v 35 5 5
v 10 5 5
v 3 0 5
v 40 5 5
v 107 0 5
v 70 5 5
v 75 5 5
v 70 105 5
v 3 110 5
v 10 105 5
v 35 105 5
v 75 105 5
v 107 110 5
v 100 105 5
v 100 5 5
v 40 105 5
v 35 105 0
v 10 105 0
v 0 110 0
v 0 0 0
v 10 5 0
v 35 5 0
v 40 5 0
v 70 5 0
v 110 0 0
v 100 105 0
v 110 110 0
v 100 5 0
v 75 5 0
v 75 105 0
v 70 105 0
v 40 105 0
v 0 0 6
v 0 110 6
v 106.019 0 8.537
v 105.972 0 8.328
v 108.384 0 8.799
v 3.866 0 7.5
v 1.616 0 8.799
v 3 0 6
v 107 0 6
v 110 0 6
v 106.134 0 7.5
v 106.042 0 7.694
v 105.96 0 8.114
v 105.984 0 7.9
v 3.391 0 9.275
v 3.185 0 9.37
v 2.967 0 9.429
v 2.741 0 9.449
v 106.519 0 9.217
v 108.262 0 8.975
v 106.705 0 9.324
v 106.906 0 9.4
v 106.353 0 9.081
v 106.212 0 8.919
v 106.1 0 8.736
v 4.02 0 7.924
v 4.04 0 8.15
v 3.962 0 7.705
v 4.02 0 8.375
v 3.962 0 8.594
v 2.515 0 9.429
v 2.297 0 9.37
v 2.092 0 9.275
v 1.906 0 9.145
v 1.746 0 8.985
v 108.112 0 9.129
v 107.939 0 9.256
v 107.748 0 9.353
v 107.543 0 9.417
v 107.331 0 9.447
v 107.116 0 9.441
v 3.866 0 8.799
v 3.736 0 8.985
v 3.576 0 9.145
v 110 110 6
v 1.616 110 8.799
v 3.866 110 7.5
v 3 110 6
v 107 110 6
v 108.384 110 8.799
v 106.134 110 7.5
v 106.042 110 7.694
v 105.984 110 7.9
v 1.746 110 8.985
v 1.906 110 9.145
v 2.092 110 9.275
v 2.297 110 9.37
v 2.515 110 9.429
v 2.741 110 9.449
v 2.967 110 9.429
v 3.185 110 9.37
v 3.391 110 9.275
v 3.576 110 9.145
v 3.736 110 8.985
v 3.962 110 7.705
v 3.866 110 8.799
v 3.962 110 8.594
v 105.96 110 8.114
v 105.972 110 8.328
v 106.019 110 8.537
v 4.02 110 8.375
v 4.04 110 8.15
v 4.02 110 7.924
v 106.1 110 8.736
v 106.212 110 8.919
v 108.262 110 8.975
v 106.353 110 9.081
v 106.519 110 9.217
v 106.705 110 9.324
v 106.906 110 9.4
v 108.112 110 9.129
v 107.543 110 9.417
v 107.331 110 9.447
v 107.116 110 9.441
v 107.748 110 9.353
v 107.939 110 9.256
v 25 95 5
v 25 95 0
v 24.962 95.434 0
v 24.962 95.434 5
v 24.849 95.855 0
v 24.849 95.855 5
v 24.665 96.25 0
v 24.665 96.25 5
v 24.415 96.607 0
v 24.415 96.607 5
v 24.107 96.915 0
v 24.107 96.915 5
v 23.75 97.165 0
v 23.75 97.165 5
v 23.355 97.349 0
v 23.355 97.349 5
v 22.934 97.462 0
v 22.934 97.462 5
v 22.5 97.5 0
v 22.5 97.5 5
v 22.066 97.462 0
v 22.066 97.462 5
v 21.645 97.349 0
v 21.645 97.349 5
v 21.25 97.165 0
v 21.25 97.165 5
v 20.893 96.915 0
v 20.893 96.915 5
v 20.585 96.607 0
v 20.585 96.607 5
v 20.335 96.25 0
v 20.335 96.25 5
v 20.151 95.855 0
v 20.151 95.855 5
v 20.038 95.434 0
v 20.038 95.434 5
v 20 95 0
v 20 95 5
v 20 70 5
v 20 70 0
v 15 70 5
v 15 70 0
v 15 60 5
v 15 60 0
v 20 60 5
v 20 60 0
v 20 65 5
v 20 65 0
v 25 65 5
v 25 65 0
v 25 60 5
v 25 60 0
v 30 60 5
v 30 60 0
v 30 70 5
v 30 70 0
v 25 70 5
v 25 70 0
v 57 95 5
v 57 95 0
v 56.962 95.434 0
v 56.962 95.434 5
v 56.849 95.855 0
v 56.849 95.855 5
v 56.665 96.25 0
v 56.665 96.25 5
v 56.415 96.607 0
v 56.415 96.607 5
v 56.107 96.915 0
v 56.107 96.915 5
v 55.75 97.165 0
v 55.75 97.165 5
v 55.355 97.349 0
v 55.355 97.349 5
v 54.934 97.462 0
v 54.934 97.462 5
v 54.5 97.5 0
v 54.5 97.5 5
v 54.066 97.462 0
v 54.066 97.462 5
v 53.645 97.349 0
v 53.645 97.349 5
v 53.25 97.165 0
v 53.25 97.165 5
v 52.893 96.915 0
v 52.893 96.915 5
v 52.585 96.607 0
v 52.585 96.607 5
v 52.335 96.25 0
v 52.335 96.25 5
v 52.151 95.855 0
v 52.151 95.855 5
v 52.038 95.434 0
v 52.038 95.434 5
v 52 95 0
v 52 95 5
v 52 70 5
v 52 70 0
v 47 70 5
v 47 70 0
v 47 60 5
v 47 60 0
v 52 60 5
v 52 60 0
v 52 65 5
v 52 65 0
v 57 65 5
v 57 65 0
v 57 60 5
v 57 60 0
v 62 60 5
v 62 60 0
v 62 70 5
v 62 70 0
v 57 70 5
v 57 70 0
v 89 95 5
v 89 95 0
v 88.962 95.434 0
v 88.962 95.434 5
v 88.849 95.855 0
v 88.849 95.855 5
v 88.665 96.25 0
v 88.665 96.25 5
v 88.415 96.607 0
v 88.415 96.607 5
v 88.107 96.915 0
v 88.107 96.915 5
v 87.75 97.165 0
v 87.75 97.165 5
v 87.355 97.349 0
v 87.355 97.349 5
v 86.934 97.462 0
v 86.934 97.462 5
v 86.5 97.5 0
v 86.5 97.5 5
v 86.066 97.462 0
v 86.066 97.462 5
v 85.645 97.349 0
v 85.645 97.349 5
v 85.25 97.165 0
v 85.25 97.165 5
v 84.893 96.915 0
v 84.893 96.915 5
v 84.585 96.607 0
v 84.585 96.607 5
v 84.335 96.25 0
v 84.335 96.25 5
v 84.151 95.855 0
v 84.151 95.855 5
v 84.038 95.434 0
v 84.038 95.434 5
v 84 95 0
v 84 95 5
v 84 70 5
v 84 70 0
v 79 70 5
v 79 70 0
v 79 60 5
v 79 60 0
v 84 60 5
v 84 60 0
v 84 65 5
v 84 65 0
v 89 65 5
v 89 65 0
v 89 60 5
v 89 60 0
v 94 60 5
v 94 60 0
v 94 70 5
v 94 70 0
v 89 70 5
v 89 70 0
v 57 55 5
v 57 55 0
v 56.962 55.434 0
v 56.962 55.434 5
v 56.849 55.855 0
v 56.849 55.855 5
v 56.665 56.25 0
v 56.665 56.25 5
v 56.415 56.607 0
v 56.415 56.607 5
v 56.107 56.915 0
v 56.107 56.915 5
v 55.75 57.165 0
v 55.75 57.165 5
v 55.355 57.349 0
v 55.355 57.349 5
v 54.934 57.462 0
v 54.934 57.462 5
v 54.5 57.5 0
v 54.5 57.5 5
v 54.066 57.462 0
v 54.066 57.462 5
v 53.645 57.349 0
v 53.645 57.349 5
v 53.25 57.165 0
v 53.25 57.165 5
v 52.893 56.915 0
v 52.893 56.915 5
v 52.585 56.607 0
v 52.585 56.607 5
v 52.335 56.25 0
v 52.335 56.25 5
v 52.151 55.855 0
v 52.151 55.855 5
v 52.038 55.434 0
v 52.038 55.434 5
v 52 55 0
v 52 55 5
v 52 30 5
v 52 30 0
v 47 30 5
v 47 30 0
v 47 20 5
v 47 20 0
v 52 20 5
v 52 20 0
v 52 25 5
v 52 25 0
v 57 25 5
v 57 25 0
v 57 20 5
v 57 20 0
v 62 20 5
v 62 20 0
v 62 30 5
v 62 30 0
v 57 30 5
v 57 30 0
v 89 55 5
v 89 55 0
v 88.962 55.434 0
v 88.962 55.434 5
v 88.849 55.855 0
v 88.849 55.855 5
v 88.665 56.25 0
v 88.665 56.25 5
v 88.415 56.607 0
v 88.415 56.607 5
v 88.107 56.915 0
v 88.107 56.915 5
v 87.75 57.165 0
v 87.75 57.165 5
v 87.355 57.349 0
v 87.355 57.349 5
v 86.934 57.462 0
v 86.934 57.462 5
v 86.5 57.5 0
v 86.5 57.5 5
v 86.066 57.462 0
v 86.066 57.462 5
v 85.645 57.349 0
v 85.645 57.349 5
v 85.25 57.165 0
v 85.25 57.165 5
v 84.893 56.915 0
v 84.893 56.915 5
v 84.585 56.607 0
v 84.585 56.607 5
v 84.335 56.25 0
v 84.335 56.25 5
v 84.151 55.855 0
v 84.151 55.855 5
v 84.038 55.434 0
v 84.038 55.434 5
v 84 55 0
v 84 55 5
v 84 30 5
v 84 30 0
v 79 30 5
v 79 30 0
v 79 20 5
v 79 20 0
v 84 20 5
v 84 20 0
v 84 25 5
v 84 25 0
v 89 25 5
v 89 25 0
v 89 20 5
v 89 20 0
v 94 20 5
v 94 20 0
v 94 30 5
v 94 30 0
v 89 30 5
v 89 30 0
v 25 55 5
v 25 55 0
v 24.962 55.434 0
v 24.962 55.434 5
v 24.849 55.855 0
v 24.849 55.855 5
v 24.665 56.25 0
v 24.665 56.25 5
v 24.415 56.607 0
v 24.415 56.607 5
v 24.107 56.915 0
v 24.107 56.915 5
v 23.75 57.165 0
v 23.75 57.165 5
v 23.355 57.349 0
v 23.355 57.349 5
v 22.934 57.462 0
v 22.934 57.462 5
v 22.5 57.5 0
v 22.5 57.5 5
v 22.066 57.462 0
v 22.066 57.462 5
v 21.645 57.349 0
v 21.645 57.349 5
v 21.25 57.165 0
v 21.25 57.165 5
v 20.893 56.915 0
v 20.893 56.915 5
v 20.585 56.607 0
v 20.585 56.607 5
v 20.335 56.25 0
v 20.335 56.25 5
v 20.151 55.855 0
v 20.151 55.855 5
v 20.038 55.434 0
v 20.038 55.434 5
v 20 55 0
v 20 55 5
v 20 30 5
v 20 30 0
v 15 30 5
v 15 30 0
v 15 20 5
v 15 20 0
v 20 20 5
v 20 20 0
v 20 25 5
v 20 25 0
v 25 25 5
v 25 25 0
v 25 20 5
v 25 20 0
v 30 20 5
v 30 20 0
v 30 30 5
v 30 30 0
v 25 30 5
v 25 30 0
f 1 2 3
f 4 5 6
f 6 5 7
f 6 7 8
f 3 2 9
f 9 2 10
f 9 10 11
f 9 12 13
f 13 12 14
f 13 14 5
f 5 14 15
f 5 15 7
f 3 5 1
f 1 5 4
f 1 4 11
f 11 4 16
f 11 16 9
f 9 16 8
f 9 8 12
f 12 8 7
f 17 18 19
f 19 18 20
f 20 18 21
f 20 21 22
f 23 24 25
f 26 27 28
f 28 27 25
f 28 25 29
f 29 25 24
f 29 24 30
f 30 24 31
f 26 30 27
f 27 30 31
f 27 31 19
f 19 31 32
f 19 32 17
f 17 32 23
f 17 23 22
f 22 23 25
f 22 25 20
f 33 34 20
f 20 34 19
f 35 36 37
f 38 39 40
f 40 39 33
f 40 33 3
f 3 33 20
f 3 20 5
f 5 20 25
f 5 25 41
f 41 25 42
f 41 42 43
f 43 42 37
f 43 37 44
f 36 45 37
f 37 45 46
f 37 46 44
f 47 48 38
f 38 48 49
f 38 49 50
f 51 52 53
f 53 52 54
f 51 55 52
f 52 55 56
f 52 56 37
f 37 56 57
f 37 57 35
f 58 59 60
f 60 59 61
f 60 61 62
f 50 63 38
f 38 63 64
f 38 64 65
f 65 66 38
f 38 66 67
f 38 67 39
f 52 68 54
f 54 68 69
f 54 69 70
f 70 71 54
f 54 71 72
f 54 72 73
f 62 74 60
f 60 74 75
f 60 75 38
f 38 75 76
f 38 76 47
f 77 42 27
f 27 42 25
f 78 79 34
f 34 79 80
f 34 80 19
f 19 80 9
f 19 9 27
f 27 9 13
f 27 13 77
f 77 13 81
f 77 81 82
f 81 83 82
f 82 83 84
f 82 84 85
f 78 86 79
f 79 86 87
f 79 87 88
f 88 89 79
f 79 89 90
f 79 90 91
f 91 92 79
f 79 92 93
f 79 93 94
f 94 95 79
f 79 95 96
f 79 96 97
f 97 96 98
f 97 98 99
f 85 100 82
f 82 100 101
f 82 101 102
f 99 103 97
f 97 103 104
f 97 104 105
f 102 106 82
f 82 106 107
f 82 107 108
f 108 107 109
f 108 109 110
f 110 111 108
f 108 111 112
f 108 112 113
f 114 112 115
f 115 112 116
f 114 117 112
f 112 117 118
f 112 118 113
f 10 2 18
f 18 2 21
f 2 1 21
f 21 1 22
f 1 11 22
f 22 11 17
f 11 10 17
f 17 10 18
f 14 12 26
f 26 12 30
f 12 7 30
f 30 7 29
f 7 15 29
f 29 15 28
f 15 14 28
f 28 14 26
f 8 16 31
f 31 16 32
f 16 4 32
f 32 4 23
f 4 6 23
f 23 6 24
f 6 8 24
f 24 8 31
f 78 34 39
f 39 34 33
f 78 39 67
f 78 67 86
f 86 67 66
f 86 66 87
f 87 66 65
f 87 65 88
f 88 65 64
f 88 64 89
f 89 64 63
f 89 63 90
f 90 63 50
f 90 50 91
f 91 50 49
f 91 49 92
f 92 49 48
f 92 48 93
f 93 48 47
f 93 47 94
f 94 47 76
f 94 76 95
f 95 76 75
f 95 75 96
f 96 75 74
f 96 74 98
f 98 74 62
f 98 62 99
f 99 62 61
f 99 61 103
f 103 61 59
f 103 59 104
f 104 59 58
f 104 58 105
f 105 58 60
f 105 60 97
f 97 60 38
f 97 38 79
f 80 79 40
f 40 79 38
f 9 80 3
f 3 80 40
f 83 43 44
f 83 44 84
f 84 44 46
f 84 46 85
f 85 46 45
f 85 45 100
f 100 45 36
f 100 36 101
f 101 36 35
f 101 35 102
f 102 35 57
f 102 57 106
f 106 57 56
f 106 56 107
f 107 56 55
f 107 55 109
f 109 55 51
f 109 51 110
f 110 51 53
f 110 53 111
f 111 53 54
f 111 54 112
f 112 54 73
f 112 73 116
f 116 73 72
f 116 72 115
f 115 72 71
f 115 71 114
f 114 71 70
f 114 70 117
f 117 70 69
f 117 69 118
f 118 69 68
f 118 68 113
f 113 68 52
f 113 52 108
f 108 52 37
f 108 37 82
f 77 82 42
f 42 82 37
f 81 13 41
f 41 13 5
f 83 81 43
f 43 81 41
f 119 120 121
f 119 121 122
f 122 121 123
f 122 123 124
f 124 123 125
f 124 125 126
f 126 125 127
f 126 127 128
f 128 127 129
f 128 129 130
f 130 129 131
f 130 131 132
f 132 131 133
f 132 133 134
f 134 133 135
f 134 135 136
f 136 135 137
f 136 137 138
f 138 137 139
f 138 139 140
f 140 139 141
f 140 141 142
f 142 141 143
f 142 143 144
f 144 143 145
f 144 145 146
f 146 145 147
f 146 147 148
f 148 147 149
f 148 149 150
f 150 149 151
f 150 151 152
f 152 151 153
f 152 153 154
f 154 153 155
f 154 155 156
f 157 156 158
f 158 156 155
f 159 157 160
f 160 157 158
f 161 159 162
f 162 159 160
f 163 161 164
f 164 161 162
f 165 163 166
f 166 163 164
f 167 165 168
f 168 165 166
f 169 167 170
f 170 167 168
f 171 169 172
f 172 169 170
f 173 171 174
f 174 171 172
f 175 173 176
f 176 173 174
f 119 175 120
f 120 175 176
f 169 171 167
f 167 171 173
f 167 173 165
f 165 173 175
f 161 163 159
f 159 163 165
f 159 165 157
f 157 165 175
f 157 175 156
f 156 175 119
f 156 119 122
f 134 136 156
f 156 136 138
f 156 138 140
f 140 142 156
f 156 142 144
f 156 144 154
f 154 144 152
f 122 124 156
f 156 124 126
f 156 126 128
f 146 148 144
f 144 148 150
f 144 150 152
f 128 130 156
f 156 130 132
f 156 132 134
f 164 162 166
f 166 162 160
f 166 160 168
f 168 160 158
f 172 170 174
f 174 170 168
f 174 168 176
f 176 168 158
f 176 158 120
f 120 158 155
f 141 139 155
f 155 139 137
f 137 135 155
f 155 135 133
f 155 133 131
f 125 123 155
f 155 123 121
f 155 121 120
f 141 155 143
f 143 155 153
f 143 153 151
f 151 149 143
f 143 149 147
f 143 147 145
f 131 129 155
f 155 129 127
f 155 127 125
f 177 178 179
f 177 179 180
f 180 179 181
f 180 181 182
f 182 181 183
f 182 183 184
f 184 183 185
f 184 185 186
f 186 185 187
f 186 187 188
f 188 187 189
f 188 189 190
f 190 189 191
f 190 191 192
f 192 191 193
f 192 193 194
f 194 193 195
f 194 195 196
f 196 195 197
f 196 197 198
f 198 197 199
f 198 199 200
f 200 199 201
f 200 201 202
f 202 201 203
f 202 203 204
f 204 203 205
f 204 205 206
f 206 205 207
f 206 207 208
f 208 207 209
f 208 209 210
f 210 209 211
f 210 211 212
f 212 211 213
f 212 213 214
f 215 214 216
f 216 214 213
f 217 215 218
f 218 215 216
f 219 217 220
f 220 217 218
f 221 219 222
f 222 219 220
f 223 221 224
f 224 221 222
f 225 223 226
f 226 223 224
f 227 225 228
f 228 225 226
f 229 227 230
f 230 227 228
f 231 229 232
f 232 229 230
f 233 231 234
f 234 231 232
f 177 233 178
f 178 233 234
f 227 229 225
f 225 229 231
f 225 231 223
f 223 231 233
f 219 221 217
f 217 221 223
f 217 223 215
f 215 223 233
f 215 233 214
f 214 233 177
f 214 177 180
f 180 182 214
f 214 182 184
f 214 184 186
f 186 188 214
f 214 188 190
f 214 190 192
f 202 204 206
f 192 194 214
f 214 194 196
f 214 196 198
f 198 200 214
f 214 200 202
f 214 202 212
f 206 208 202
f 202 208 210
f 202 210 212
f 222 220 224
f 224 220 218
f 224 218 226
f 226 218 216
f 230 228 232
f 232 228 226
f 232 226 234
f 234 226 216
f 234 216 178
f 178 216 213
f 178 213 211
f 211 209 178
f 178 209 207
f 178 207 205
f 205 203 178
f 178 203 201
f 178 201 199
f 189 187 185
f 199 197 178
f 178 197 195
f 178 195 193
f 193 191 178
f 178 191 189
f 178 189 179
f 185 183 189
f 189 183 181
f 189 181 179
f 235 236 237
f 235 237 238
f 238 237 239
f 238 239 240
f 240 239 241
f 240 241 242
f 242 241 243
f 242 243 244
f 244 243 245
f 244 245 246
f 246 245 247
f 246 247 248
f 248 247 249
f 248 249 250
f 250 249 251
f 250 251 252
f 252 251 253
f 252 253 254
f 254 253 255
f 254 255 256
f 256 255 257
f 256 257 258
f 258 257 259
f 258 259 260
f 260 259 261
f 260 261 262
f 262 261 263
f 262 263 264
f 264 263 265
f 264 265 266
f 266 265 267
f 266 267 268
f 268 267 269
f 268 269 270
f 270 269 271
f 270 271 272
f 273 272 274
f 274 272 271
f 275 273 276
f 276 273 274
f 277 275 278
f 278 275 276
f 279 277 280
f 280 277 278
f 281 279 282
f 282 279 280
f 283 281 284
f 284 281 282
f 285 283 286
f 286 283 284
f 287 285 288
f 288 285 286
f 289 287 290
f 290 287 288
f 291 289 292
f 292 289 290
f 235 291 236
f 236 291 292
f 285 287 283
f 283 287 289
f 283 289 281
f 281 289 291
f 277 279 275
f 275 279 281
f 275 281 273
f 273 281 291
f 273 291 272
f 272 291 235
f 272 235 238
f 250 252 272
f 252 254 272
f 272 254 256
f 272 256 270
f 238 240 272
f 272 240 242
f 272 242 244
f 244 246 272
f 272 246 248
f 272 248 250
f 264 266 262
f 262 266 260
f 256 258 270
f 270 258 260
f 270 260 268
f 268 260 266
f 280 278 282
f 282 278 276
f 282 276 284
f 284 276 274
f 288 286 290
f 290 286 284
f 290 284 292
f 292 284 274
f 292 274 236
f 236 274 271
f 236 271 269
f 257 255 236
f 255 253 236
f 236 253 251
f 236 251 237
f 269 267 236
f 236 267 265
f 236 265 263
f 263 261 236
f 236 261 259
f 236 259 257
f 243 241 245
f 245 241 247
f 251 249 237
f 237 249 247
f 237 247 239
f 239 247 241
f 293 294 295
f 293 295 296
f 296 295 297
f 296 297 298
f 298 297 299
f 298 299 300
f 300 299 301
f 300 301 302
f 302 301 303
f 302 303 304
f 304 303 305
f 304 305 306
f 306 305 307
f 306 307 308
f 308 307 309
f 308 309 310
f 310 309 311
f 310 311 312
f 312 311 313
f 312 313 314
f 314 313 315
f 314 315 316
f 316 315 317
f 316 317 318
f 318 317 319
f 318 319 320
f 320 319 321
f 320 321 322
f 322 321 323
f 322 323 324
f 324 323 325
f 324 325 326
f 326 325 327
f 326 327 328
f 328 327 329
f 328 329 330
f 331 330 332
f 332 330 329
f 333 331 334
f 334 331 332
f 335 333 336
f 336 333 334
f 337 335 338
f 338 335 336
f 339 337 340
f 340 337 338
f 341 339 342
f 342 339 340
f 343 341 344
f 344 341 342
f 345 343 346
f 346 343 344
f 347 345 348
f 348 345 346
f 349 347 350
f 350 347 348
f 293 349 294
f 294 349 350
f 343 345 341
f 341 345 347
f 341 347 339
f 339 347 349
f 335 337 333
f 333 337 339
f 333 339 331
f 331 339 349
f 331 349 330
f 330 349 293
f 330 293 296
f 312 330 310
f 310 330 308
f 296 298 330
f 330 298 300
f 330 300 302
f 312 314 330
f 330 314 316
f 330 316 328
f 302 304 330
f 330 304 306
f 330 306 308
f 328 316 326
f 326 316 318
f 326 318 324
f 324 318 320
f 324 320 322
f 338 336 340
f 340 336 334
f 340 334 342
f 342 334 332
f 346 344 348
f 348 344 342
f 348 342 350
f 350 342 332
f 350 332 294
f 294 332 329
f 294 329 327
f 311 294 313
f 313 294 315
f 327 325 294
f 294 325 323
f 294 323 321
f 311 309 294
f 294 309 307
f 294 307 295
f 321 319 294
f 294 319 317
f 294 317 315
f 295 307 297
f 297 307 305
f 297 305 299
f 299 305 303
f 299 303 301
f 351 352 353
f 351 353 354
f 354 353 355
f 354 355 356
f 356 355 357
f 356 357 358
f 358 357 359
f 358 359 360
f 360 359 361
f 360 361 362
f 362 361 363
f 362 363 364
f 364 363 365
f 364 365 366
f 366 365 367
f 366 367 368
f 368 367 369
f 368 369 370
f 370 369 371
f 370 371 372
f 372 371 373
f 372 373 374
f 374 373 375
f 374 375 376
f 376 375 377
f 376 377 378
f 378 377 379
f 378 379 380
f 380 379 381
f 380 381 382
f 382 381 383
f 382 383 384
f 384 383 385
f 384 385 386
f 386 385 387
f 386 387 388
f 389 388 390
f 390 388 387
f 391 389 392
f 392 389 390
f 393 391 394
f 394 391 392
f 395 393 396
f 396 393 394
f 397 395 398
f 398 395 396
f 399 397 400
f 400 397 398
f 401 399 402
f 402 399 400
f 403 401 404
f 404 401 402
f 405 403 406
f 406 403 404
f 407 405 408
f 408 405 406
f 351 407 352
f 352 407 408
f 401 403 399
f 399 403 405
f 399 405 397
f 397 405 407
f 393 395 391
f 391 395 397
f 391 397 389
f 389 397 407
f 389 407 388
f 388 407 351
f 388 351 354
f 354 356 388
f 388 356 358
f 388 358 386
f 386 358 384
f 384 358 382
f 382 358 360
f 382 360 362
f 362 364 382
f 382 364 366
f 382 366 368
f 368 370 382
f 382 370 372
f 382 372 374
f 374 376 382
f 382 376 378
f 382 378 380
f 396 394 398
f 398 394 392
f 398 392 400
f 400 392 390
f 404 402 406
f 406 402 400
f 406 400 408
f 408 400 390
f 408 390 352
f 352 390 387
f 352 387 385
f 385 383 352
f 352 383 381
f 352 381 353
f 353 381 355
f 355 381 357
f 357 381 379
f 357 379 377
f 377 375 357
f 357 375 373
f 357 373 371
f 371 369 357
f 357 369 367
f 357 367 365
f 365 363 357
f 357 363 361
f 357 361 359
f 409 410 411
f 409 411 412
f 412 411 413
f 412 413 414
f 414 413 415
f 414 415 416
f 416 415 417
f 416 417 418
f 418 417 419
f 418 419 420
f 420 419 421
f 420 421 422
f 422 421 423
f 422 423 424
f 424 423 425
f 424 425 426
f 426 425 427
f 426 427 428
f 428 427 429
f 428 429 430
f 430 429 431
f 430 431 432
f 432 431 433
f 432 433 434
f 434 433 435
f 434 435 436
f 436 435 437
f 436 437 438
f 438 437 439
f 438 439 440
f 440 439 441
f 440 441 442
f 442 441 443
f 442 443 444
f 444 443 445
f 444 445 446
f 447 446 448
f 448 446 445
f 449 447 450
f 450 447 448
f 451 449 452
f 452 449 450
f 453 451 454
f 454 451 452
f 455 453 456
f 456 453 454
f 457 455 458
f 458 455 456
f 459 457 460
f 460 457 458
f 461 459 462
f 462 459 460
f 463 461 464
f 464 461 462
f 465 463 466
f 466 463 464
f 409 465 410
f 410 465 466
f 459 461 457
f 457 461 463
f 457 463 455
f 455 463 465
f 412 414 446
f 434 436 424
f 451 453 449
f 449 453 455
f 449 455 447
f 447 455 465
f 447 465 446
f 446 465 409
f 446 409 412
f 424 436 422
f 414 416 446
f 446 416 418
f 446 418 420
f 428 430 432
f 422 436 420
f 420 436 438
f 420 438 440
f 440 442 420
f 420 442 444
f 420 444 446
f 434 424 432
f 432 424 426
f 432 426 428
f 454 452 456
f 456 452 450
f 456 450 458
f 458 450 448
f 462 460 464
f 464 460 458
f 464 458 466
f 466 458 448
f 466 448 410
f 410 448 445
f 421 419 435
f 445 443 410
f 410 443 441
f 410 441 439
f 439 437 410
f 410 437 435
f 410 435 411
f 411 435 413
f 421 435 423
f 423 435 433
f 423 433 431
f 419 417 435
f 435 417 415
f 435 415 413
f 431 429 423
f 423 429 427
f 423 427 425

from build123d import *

# Parameters (mm, degrees)
SKETCH1_W             = 110
SKETCH1_H             = 110
SKETCH1_W_2           = 25
SKETCH1_H_2           = 100
SKETCH1_W_3           = 30
BOSS_EXTRUDE1_DEPTH   = 5
BOSS_EXTRUDE2_DEPTH   = 110
BOSS_EXTRUDE3_DEPTH   = 5
BOSS_EXTRUDE3_2_DEPTH = 5
BOSS_EXTRUDE3_3_DEPTH = 5
BOSS_EXTRUDE3_4_DEPTH = 5
BOSS_EXTRUDE3_5_DEPTH = 5
BOSS_EXTRUDE3_6_DEPTH = 5


with BuildPart() as part:
    # Sketch1 → Boss-Extrude1 (new body)
    with BuildSketch(Plane.XY):
        with Locations((55, 55)):
            Rectangle(SKETCH1_W, SKETCH1_H)
        with Locations((22.5, 55)):
            Rectangle(SKETCH1_W_2, SKETCH1_H_2, mode=Mode.SUBTRACT)
        with Locations((87.5, 55)):
            Rectangle(SKETCH1_W_2, SKETCH1_H_2, mode=Mode.SUBTRACT)
        with Locations((55, 55)):
            Rectangle(SKETCH1_W_3, SKETCH1_H_2, mode=Mode.SUBTRACT)
    extrude(amount=BOSS_EXTRUDE1_DEPTH)

    # Sketch2 → Boss-Extrude2 (add)
    with BuildSketch(Plane.XZ):
        with BuildLine():
            Line((0, 5), (3, 5))
            Line((3, 5), (3, 6))
            Line((3, 6), (3.866025404, 7.5))
            ThreePointArc((3.866025404, 7.5), (3.390544457, 9.274519053), (1.616025404, 8.799038106))
            Line((1.616025404, 8.799038106), (0, 6))
            Line((0, 6), (0, 5))
        make_face()
        with BuildLine():
            Line((110, 6), (110, 5))
            Line((110, 5), (107, 5))
            Line((107, 5), (107, 6))
            Line((107, 6), (106.133974596, 7.5))
            ThreePointArc((106.133974596, 7.5), (106.609455543, 9.274519053), (108.383974596, 8.799038106))
            Line((108.383974596, 8.799038106), (110, 6))
        make_face()
    extrude(amount=-BOSS_EXTRUDE2_DEPTH)


with BuildPart() as body_2:
    # Sketch3 → Boss-Extrude3 (new body)
    with BuildSketch(Plane.XY):
        with BuildLine():
            Line((20, 95), (20, 70))
            Line((20, 70), (15, 70))
            Line((15, 70), (15, 60))
            Line((15, 60), (20, 60))
            Line((20, 60), (20, 65))
            Line((20, 65), (25, 65))
            Line((25, 65), (25, 60))
            Line((25, 60), (30, 60))
            Line((30, 60), (30, 70))
            Line((30, 70), (25, 70))
            Line((25, 70), (25, 95))
            ThreePointArc((25, 95), (22.5, 97.5), (20, 95))
        make_face()
    extrude(amount=BOSS_EXTRUDE3_DEPTH)


with BuildPart() as body_3:
    # Sketch3 → Boss-Extrude3 2 (new body)
    with BuildSketch(Plane.XY):
        with BuildLine():
            Line((52, 95), (52, 70))
            Line((52, 70), (47, 70))
            Line((47, 70), (47, 60))
            Line((47, 60), (52, 60))
            Line((52, 60), (52, 65))
            Line((52, 65), (57, 65))
            Line((57, 65), (57, 60))
            Line((57, 60), (62, 60))
            Line((62, 60), (62, 70))
            Line((62, 70), (57, 70))
            Line((57, 70), (57, 95))
            ThreePointArc((57, 95), (54.5, 97.5), (52, 95))
        make_face()
    extrude(amount=BOSS_EXTRUDE3_2_DEPTH)


with BuildPart() as body_4:
    # Sketch3 → Boss-Extrude3 3 (new body)
    with BuildSketch(Plane.XY):
        with BuildLine():
            Line((84, 95), (84, 70))
            Line((84, 70), (79, 70))
            Line((79, 70), (79, 60))
            Line((79, 60), (84, 60))
            Line((84, 60), (84, 65))
            Line((84, 65), (89, 65))
            Line((89, 65), (89, 60))
            Line((89, 60), (94, 60))
            Line((94, 60), (94, 70))
            Line((94, 70), (89, 70))
            Line((89, 70), (89, 95))
            ThreePointArc((89, 95), (86.5, 97.5), (84, 95))
        make_face()
    extrude(amount=BOSS_EXTRUDE3_3_DEPTH)


with BuildPart() as body_5:
    # Sketch3 → Boss-Extrude3 4 (new body)
    with BuildSketch(Plane.XY):
        with BuildLine():
            Line((52, 55), (52, 30))
            Line((52, 30), (47, 30))
            Line((47, 30), (47, 20))
            Line((47, 20), (52, 20))
            Line((52, 20), (52, 25))
            Line((52, 25), (57, 25))
            Line((57, 25), (57, 20))
            Line((57, 20), (62, 20))
            Line((62, 20), (62, 30))
            Line((62, 30), (57, 30))
            Line((57, 30), (57, 55))
            ThreePointArc((57, 55), (54.5, 57.5), (52, 55))
        make_face()
    extrude(amount=BOSS_EXTRUDE3_4_DEPTH)


with BuildPart() as body_6:
    # Sketch3 → Boss-Extrude3 5 (new body)
    with BuildSketch(Plane.XY):
        with BuildLine():
            Line((84, 55), (84, 30))
            Line((84, 30), (79, 30))
            Line((79, 30), (79, 20))
            Line((79, 20), (84, 20))
            Line((84, 20), (84, 25))
            Line((84, 25), (89, 25))
            Line((89, 25), (89, 20))
            Line((89, 20), (94, 20))
            Line((94, 20), (94, 30))
            Line((94, 30), (89, 30))
            Line((89, 30), (89, 55))
            ThreePointArc((89, 55), (86.5, 57.5), (84, 55))
        make_face()
    extrude(amount=BOSS_EXTRUDE3_5_DEPTH)


with BuildPart() as body_7:
    # Sketch3 → Boss-Extrude3 6 (new body)
    with BuildSketch(Plane.XY):
        with BuildLine():
            Line((20, 55), (20, 30))
            Line((20, 30), (15, 30))
            Line((15, 30), (15, 20))
            Line((15, 20), (20, 20))
            Line((20, 20), (20, 25))
            Line((20, 25), (25, 25))
            Line((25, 25), (25, 20))
            Line((25, 20), (30, 20))
            Line((30, 20), (30, 30))
            Line((30, 30), (25, 30))
            Line((25, 30), (25, 55))
            ThreePointArc((25, 55), (22.5, 57.5), (20, 55))
        make_face()
    extrude(amount=BOSS_EXTRUDE3_6_DEPTH)


solid = Compound([part.part, body_2.part, body_3.part, body_4.part, body_5.part, body_6.part, body_7.part])
